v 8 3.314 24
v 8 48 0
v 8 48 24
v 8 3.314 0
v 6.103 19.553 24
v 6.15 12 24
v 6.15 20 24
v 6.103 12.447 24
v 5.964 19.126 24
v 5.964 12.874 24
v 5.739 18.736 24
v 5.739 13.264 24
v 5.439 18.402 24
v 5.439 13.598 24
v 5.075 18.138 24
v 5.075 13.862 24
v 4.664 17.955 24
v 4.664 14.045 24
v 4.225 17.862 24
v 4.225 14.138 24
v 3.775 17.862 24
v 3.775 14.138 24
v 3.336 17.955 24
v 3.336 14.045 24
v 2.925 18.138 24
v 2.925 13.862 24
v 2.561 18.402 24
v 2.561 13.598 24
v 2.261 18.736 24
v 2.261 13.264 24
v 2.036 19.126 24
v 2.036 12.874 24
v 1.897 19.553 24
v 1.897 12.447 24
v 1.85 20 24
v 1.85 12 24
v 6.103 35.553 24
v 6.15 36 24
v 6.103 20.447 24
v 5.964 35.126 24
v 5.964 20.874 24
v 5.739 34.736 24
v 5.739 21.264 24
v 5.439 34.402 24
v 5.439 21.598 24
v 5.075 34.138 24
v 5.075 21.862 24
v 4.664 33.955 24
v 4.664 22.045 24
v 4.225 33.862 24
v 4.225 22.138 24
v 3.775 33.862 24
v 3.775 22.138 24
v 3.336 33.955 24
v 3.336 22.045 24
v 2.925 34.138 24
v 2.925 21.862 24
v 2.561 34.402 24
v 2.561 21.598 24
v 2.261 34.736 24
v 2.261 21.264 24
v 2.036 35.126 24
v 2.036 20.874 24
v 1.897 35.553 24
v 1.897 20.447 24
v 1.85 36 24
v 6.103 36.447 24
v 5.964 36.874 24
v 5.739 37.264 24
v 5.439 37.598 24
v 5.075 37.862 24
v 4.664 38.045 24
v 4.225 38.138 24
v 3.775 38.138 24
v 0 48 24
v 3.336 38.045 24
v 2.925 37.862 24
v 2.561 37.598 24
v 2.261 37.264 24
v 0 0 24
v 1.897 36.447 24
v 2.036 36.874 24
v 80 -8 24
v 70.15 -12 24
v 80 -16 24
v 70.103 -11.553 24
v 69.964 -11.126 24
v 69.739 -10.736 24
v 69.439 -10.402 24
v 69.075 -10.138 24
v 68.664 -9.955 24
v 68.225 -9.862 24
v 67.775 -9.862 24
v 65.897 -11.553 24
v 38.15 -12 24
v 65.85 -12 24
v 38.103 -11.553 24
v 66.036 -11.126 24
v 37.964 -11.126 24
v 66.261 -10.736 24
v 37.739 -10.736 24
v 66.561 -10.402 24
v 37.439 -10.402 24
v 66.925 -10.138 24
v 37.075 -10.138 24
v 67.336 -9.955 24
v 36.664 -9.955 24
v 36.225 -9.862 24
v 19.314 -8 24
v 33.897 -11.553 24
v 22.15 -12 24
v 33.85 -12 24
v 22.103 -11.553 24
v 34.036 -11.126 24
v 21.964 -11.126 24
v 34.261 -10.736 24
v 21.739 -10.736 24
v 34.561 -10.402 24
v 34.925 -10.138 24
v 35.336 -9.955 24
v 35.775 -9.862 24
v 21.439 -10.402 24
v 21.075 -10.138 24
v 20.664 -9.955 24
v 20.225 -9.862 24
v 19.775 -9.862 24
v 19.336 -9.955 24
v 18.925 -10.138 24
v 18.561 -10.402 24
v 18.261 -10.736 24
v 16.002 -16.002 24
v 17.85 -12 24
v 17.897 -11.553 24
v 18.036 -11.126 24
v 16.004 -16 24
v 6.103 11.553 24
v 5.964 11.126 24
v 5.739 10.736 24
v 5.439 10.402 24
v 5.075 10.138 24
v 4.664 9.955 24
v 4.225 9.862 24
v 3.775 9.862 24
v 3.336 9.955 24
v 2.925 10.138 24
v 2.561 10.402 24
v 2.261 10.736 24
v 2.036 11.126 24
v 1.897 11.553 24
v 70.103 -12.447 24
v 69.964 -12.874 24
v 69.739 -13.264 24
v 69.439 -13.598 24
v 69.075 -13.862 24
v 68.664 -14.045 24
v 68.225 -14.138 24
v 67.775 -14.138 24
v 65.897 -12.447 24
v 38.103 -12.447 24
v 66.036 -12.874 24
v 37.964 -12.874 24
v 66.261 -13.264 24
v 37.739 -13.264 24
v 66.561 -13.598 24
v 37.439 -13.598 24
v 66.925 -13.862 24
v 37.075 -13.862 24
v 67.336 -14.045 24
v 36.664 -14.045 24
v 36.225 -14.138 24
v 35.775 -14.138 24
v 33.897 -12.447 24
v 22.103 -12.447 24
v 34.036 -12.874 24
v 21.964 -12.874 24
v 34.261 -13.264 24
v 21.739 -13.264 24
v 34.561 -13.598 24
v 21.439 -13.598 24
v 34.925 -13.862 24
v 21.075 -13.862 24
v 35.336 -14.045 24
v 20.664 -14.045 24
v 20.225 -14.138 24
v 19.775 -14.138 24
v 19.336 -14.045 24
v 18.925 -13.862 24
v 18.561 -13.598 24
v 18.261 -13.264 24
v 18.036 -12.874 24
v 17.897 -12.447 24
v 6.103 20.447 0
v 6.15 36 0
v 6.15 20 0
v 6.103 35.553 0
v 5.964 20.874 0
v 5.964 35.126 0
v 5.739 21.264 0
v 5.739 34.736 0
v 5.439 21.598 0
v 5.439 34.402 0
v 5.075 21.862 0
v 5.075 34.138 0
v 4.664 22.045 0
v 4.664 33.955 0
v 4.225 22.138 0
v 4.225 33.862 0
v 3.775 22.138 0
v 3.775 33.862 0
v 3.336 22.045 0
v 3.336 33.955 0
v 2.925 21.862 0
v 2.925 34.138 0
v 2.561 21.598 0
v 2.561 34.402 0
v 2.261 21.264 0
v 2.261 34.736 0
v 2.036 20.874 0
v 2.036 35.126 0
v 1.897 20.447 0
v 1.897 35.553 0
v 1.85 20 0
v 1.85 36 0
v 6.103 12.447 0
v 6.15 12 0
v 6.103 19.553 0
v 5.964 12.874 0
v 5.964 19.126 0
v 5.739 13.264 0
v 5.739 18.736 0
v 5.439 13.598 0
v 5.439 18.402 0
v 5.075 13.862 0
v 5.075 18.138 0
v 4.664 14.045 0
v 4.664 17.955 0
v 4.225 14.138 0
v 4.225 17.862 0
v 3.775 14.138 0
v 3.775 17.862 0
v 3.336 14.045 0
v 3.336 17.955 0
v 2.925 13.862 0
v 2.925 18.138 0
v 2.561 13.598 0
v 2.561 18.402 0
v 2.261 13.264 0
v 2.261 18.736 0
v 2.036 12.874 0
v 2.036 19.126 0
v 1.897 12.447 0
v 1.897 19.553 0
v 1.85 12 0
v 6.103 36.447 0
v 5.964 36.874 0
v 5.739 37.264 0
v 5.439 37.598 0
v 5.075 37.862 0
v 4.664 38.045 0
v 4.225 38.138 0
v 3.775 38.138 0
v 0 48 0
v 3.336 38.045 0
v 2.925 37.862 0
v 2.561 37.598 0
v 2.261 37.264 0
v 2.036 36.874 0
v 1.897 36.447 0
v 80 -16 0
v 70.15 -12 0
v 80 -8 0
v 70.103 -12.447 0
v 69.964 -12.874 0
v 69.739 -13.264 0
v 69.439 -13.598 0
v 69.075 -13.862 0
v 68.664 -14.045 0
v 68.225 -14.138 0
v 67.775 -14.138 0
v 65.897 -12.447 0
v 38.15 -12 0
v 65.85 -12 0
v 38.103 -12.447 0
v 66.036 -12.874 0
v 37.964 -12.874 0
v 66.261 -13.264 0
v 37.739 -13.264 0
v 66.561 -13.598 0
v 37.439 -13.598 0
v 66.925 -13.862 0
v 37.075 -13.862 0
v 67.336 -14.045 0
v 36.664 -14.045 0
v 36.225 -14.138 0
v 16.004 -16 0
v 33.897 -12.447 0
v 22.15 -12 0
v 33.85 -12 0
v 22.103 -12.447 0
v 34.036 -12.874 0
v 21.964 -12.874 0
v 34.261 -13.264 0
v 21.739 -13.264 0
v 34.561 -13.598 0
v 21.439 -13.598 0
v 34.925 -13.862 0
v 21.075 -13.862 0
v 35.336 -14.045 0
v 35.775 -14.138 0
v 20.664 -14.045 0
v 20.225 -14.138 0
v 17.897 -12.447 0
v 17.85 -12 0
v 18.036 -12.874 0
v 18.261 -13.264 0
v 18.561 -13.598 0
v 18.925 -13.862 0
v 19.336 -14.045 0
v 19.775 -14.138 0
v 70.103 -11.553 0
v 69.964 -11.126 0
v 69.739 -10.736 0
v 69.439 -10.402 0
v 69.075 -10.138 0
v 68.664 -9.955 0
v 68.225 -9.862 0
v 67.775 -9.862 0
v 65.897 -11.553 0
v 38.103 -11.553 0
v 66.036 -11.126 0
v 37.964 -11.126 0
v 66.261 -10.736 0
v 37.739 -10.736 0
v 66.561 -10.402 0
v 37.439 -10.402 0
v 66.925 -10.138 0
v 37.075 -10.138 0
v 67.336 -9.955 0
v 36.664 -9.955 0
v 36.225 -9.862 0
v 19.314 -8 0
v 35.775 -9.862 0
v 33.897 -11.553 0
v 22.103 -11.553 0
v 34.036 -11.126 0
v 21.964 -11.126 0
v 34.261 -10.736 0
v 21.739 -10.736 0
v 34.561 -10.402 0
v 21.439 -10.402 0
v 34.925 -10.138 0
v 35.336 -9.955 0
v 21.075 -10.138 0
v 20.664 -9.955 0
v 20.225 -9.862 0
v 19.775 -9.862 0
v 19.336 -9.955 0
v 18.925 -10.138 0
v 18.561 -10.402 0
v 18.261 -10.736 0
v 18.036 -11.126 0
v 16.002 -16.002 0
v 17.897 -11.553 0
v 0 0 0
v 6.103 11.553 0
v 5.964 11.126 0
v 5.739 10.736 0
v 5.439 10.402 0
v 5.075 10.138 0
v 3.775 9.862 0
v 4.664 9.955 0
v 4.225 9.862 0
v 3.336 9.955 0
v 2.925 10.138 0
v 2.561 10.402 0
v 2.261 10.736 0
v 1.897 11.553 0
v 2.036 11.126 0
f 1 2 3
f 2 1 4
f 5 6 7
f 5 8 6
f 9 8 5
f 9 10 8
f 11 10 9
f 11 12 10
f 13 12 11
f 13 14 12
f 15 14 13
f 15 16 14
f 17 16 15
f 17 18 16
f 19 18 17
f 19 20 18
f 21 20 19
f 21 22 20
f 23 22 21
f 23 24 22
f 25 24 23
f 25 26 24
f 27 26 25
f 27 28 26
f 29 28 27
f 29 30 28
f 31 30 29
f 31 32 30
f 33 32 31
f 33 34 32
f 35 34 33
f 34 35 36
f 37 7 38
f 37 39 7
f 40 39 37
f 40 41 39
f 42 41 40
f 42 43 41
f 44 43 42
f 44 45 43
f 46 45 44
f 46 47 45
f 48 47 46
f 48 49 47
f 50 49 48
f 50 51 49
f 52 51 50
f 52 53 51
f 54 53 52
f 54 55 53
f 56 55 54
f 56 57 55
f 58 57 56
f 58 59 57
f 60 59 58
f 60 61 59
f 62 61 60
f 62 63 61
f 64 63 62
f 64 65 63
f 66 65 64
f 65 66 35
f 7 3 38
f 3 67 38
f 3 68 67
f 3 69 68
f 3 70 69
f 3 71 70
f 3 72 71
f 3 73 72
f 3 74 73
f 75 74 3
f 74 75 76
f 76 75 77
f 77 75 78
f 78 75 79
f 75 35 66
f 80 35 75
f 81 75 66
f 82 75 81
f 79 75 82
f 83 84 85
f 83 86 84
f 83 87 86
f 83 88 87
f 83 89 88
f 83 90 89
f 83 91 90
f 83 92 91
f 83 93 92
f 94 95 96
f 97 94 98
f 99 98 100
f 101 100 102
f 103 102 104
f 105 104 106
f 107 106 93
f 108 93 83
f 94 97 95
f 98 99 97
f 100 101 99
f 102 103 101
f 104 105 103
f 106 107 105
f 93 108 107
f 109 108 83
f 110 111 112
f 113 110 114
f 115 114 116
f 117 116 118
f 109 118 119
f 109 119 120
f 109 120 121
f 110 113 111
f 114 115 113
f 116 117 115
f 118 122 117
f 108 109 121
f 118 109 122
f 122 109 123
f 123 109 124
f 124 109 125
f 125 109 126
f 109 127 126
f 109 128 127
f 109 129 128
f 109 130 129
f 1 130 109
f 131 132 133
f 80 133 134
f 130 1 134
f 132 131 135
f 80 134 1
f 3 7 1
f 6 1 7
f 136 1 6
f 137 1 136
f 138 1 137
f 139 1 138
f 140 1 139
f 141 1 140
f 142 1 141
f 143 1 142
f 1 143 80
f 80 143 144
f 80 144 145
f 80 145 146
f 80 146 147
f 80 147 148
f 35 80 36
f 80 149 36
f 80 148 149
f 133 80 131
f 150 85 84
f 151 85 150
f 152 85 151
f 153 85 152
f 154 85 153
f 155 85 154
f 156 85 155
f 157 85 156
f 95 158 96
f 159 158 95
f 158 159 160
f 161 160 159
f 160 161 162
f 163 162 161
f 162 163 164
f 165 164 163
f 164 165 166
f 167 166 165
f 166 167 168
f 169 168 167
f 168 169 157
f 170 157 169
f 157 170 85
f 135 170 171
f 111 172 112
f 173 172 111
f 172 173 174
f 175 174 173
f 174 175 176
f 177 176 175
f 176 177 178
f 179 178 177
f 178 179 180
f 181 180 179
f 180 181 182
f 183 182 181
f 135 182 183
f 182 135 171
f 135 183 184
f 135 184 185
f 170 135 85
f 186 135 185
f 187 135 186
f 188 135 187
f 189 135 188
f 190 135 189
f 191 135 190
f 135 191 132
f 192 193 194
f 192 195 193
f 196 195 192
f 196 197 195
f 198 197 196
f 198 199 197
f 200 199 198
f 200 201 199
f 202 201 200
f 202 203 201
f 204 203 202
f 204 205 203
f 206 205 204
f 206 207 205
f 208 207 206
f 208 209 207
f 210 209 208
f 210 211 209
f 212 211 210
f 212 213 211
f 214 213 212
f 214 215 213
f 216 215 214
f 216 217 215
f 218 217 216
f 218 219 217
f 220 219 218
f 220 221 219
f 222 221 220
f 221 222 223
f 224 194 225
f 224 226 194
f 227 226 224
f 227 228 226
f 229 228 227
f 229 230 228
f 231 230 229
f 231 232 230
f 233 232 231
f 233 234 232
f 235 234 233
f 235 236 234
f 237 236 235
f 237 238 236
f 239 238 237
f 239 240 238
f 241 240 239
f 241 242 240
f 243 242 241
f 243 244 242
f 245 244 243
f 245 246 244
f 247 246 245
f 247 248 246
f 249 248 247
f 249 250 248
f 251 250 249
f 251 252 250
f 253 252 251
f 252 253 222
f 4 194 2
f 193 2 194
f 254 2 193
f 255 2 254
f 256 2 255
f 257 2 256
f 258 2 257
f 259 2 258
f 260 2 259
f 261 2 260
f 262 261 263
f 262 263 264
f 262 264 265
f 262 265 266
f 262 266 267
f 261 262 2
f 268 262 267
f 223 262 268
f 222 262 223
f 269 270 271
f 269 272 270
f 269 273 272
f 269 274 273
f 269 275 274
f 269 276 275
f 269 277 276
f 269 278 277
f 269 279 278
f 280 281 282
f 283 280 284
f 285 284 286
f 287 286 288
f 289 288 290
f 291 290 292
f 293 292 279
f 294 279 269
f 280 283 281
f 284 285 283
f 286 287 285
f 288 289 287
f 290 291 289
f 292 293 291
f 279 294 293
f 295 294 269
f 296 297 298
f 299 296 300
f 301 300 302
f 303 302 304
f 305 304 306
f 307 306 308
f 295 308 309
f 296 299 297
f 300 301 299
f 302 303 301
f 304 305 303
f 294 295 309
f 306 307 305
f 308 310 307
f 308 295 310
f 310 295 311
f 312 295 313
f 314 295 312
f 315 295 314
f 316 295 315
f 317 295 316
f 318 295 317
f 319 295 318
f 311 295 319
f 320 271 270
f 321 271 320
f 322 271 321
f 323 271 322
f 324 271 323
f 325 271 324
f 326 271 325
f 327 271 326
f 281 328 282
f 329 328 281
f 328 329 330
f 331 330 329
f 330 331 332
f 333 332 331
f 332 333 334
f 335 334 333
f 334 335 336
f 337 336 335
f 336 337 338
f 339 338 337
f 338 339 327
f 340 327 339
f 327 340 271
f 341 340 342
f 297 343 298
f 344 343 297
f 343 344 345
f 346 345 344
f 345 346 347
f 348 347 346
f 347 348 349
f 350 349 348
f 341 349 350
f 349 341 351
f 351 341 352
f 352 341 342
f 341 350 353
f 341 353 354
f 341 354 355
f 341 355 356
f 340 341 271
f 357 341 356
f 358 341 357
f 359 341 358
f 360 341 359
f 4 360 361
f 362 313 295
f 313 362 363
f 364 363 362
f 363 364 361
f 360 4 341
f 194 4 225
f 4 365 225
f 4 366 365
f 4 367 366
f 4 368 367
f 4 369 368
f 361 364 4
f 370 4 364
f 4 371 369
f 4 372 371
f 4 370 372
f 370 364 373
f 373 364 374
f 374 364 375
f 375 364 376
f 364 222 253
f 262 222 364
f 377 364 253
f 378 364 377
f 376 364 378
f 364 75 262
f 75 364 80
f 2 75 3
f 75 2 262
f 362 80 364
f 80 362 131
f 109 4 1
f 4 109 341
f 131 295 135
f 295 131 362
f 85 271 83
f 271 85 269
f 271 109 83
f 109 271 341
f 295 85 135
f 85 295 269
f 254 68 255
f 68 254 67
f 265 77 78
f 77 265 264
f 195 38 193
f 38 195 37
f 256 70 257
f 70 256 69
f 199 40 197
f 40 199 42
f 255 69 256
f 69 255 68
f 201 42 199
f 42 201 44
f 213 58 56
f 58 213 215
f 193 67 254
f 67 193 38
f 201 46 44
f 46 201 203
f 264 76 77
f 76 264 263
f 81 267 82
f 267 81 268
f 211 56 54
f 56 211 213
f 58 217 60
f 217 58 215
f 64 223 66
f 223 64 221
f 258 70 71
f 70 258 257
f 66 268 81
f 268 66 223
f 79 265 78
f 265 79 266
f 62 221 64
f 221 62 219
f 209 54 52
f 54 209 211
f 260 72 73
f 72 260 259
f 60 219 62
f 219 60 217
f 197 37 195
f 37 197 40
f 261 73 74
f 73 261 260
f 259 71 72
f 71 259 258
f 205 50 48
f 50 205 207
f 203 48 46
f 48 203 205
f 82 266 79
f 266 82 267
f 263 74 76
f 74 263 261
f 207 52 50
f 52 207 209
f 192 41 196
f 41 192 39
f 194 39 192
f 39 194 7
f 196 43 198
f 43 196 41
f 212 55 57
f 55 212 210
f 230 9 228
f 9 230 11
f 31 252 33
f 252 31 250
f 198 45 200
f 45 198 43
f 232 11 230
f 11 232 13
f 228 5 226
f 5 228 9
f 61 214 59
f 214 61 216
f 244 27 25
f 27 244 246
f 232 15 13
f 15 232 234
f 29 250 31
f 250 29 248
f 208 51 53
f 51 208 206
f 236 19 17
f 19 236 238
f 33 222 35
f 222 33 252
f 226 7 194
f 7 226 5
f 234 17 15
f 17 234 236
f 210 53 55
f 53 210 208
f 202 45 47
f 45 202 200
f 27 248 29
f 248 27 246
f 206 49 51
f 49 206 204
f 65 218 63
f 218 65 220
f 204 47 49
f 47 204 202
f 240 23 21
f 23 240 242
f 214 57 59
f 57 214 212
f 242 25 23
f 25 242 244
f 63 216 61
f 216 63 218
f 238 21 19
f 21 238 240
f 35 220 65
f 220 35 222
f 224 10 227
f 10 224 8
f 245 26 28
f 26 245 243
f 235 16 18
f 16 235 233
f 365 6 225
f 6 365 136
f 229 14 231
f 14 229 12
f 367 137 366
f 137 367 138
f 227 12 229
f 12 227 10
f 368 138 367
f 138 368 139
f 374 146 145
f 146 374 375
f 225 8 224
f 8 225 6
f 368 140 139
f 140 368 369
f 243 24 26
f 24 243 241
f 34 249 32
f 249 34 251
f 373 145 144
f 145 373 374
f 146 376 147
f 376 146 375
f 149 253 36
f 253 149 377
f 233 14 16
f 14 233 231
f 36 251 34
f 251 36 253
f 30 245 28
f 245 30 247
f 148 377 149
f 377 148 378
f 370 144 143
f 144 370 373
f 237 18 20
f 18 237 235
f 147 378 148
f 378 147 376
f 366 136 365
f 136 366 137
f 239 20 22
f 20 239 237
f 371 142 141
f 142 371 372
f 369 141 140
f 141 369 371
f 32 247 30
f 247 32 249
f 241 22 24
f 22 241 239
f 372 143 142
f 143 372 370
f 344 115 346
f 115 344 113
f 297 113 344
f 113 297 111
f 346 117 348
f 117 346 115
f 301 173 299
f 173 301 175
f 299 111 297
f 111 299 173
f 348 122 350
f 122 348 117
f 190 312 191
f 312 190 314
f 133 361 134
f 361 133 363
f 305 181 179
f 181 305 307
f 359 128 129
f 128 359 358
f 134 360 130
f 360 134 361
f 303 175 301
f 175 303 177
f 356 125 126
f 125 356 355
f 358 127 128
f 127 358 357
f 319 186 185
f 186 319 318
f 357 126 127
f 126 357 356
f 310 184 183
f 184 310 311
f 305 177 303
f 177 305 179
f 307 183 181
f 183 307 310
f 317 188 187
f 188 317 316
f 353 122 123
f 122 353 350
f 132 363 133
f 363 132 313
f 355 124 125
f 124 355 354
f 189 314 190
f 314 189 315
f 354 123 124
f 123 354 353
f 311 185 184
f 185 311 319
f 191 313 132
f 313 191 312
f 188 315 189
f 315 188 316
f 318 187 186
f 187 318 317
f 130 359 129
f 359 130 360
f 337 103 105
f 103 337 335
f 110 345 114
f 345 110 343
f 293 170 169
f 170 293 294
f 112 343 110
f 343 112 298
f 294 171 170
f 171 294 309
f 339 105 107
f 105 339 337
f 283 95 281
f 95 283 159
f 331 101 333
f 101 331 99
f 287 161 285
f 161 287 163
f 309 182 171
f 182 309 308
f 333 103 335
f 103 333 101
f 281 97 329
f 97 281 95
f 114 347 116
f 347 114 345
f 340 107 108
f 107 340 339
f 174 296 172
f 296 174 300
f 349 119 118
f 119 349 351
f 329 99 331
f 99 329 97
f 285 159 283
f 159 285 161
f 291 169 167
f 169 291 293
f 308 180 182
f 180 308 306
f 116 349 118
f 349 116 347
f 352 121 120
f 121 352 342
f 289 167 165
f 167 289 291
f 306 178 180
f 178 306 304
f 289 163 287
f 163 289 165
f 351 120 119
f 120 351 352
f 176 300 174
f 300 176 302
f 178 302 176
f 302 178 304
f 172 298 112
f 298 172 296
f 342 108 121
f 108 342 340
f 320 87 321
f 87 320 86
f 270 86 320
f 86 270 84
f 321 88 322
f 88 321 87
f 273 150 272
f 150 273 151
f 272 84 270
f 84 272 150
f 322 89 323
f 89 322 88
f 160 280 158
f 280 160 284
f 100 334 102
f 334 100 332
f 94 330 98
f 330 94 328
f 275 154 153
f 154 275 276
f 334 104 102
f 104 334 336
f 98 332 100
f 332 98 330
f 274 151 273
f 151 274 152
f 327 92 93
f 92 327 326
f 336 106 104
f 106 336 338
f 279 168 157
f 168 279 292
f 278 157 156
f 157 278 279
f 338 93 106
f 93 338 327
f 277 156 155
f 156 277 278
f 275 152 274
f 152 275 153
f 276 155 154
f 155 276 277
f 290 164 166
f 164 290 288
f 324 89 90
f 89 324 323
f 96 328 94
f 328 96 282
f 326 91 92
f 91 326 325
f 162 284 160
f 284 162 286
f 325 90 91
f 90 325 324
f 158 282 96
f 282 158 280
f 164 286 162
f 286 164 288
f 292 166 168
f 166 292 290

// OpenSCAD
// Top track part. Height of part is 24mm. Holes r=2.15mm, d=4.3mm.

difference() {
union() {
    // Sections are numbered from top to bottom, left to right
    // Section 1
    cube([8,48,24]);
    
    // Section 2 at a 45º angle
    translate([5.6568,5.6568,0])
    rotate([0,0,225])
    cube([8,22.63,24]);
    
    // Section 3
    translate([16,-16,0])
    cube([64,8,24]);
    
}
    // Holes are numbered from top to bottom, left to right
    // Hole 1
    translate([4,36,-2])
    cylinder(r=2.15,44, $fn=30);

    // Hole 2
    translate([4,20,-2])
    cylinder(r=2.15,44, $fn=30);

    // Hole 3 (compatible with lego board)
    translate([4,12,-2])
    cylinder(r=2.15,44, $fn=30);

    // Hole 4
    translate([20,-12,-2])
    cylinder(r=2.15,45, $fn=30);

    // Hole 5
    translate([36,-12,-2])
    cylinder(r=2.15,45, $fn=30);
    
    // Hole 6 (compatible with lego board and base plate)
    translate([68,-12,-2])
    cylinder(r=2.15,44, $fn=30);
    
}
// base plate positioned for top track
// color ("blue")
// translate([-112,-144,24])
// import("/Users/harperdaniels/Downloads/plate-2.stl");
